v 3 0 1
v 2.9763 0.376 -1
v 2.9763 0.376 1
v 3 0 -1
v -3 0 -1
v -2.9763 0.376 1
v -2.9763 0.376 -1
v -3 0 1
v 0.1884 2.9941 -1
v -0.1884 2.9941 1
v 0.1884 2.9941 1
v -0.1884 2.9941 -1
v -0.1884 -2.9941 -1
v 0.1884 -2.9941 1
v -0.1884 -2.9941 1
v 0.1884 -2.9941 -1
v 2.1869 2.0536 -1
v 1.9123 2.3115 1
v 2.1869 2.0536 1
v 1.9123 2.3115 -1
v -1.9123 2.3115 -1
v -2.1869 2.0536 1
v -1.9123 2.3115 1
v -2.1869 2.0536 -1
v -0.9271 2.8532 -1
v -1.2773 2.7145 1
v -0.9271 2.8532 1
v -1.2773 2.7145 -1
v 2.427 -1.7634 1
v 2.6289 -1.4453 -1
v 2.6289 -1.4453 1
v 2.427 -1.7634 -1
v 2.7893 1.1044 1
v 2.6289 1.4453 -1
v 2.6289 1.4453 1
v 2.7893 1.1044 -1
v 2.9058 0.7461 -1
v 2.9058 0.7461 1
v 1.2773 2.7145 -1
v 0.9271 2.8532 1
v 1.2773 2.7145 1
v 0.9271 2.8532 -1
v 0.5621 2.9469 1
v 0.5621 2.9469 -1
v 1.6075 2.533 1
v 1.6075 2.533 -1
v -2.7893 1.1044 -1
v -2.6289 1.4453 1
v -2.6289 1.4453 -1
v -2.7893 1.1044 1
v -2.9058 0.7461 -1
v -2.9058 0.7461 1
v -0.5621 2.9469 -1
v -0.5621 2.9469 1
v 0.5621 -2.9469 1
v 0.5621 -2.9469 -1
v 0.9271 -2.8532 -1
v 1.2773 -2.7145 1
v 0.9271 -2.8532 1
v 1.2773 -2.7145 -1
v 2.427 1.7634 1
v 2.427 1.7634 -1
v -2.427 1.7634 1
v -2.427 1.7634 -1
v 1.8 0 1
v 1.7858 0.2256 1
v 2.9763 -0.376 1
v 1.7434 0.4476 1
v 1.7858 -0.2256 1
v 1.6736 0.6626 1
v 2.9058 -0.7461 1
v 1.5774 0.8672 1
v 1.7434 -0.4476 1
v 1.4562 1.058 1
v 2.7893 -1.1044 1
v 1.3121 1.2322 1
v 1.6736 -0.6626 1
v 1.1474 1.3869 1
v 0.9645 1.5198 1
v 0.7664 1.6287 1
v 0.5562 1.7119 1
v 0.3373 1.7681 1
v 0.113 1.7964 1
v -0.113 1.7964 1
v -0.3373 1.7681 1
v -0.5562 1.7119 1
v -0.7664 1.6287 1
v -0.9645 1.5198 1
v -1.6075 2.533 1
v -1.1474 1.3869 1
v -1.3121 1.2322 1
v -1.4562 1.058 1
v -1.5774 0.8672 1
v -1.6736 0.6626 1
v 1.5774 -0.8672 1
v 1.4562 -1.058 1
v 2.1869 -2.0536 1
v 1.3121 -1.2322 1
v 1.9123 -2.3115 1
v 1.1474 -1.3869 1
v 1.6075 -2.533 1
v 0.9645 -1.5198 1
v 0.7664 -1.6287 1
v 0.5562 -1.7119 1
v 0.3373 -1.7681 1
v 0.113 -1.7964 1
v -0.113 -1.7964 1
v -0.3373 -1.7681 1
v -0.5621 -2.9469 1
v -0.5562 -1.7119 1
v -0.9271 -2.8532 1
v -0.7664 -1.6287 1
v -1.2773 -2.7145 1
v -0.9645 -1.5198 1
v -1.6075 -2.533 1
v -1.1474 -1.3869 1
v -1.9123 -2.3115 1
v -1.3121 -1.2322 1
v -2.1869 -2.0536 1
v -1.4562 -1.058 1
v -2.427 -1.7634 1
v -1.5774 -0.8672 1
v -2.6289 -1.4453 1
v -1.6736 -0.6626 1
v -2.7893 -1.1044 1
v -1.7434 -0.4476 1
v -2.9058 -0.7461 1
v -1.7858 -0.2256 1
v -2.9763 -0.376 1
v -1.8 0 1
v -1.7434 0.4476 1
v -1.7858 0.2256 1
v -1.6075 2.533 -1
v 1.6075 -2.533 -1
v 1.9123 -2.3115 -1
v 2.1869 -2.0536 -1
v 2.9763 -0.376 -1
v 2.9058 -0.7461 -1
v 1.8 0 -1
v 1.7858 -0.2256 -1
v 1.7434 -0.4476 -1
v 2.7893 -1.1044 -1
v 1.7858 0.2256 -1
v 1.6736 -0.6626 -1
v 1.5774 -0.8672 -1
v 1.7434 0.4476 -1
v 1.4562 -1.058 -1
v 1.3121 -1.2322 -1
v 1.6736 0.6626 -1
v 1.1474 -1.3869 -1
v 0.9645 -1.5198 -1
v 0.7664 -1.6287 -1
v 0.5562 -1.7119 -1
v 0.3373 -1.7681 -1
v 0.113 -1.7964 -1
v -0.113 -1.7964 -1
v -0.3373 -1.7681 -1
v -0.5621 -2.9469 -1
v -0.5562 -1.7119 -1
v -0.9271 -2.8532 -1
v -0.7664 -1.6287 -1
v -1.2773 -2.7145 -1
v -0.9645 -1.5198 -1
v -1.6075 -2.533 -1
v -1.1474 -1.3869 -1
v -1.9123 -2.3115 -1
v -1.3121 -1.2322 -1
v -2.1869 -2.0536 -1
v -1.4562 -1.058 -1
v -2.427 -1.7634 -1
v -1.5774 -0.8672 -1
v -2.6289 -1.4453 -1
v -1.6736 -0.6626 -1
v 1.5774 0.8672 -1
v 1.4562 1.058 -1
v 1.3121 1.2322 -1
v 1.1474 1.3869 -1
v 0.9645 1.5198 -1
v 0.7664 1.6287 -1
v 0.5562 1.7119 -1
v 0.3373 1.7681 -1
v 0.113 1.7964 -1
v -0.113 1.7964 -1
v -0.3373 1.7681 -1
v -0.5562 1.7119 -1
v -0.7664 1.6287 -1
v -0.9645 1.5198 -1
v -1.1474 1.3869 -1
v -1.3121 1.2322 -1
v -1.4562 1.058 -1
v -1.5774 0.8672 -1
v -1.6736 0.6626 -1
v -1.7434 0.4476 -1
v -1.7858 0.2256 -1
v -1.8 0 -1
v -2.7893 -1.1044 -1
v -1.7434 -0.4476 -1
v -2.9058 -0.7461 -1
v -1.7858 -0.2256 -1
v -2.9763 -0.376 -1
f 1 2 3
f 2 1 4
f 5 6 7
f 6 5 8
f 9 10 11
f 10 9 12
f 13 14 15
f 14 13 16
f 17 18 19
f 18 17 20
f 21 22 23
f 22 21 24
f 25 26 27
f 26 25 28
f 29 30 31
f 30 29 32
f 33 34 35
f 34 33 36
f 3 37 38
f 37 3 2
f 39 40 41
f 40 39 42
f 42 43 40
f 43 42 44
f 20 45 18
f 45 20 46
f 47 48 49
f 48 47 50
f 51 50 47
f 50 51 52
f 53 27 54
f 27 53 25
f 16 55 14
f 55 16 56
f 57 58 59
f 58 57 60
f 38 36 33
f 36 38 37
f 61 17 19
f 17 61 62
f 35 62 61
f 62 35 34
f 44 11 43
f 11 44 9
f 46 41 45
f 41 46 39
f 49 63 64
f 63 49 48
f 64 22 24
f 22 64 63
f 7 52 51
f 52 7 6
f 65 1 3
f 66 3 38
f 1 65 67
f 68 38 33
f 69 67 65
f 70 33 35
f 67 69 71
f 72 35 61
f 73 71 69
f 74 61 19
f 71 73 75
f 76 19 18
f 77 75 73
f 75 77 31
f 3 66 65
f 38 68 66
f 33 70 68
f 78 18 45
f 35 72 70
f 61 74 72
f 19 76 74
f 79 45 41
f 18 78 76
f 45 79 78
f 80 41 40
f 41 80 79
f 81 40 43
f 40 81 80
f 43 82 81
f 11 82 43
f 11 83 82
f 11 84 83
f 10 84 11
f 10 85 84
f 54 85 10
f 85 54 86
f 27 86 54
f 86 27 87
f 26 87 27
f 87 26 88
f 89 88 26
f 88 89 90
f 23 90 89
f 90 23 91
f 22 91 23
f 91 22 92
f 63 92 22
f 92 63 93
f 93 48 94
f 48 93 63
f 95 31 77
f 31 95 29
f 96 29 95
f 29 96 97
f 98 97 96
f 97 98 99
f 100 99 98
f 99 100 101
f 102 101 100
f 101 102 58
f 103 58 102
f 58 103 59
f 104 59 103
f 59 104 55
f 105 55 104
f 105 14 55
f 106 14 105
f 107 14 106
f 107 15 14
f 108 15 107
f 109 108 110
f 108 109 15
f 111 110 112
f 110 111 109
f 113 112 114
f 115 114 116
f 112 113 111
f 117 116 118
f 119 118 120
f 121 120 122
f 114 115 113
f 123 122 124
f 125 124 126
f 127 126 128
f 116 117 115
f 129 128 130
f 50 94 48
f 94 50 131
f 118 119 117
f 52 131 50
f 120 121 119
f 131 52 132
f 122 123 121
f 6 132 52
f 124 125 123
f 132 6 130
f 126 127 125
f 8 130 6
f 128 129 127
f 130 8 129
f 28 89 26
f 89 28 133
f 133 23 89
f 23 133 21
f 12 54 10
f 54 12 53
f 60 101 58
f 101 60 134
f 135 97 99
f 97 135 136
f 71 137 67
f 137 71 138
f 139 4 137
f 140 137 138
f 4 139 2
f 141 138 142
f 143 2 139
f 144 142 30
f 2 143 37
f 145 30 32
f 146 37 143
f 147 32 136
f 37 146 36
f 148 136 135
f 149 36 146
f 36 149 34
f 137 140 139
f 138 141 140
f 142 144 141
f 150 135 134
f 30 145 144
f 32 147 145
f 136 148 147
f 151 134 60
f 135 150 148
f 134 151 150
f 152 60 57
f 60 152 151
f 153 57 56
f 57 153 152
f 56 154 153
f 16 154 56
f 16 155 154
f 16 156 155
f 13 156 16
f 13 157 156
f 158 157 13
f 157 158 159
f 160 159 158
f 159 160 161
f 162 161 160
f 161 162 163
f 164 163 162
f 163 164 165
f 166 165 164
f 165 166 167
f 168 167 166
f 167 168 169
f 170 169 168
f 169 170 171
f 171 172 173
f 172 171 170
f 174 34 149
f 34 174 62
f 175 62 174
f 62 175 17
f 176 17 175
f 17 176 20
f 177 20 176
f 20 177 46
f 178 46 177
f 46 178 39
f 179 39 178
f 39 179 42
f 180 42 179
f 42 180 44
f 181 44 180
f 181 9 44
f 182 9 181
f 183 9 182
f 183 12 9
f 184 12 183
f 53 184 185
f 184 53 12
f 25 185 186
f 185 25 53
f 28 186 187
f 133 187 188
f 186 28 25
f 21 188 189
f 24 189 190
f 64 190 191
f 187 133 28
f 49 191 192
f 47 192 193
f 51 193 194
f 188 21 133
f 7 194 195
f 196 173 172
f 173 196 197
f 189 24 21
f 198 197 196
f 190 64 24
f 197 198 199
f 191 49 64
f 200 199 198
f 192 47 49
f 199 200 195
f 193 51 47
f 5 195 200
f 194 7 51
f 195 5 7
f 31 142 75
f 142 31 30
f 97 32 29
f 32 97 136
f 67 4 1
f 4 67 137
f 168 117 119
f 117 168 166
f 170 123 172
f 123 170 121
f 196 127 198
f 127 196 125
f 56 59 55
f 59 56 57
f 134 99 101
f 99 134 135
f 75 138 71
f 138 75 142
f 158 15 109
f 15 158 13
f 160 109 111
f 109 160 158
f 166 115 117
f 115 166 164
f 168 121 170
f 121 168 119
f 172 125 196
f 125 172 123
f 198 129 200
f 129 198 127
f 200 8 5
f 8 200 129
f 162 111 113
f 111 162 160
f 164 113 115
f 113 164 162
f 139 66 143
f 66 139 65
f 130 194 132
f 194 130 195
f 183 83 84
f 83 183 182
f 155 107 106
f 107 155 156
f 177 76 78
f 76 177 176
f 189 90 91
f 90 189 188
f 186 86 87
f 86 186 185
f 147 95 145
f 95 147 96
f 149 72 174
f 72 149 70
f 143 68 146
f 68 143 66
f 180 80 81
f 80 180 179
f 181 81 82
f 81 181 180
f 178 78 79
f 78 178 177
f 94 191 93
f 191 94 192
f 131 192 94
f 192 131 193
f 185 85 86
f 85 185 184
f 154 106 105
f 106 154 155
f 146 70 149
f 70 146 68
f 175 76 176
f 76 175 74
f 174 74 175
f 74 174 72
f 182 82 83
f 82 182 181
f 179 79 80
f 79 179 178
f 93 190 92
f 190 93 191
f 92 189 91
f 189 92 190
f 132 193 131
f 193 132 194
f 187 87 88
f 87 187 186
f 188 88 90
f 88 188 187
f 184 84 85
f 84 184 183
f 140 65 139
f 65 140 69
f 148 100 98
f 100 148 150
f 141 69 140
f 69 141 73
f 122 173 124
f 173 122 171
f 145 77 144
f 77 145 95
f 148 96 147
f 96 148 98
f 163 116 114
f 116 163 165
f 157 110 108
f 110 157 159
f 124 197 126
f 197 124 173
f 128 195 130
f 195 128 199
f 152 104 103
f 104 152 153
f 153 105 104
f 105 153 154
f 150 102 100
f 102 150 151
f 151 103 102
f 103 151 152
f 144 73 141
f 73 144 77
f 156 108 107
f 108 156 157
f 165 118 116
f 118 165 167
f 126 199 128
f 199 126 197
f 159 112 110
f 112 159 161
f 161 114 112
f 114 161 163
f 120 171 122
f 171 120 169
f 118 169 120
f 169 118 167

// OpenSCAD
$fn = 50;


difference() {
	union() {
		translate(v = [0, 0, -1.0000000000]) {
			cylinder(h = 2, r = 3.0000000000);
		}
	}
	union() {
		translate(v = [0, 0, -100.0000000000]) {
			cylinder(h = 200, r = 1.8000000000);
		}
	}
}
